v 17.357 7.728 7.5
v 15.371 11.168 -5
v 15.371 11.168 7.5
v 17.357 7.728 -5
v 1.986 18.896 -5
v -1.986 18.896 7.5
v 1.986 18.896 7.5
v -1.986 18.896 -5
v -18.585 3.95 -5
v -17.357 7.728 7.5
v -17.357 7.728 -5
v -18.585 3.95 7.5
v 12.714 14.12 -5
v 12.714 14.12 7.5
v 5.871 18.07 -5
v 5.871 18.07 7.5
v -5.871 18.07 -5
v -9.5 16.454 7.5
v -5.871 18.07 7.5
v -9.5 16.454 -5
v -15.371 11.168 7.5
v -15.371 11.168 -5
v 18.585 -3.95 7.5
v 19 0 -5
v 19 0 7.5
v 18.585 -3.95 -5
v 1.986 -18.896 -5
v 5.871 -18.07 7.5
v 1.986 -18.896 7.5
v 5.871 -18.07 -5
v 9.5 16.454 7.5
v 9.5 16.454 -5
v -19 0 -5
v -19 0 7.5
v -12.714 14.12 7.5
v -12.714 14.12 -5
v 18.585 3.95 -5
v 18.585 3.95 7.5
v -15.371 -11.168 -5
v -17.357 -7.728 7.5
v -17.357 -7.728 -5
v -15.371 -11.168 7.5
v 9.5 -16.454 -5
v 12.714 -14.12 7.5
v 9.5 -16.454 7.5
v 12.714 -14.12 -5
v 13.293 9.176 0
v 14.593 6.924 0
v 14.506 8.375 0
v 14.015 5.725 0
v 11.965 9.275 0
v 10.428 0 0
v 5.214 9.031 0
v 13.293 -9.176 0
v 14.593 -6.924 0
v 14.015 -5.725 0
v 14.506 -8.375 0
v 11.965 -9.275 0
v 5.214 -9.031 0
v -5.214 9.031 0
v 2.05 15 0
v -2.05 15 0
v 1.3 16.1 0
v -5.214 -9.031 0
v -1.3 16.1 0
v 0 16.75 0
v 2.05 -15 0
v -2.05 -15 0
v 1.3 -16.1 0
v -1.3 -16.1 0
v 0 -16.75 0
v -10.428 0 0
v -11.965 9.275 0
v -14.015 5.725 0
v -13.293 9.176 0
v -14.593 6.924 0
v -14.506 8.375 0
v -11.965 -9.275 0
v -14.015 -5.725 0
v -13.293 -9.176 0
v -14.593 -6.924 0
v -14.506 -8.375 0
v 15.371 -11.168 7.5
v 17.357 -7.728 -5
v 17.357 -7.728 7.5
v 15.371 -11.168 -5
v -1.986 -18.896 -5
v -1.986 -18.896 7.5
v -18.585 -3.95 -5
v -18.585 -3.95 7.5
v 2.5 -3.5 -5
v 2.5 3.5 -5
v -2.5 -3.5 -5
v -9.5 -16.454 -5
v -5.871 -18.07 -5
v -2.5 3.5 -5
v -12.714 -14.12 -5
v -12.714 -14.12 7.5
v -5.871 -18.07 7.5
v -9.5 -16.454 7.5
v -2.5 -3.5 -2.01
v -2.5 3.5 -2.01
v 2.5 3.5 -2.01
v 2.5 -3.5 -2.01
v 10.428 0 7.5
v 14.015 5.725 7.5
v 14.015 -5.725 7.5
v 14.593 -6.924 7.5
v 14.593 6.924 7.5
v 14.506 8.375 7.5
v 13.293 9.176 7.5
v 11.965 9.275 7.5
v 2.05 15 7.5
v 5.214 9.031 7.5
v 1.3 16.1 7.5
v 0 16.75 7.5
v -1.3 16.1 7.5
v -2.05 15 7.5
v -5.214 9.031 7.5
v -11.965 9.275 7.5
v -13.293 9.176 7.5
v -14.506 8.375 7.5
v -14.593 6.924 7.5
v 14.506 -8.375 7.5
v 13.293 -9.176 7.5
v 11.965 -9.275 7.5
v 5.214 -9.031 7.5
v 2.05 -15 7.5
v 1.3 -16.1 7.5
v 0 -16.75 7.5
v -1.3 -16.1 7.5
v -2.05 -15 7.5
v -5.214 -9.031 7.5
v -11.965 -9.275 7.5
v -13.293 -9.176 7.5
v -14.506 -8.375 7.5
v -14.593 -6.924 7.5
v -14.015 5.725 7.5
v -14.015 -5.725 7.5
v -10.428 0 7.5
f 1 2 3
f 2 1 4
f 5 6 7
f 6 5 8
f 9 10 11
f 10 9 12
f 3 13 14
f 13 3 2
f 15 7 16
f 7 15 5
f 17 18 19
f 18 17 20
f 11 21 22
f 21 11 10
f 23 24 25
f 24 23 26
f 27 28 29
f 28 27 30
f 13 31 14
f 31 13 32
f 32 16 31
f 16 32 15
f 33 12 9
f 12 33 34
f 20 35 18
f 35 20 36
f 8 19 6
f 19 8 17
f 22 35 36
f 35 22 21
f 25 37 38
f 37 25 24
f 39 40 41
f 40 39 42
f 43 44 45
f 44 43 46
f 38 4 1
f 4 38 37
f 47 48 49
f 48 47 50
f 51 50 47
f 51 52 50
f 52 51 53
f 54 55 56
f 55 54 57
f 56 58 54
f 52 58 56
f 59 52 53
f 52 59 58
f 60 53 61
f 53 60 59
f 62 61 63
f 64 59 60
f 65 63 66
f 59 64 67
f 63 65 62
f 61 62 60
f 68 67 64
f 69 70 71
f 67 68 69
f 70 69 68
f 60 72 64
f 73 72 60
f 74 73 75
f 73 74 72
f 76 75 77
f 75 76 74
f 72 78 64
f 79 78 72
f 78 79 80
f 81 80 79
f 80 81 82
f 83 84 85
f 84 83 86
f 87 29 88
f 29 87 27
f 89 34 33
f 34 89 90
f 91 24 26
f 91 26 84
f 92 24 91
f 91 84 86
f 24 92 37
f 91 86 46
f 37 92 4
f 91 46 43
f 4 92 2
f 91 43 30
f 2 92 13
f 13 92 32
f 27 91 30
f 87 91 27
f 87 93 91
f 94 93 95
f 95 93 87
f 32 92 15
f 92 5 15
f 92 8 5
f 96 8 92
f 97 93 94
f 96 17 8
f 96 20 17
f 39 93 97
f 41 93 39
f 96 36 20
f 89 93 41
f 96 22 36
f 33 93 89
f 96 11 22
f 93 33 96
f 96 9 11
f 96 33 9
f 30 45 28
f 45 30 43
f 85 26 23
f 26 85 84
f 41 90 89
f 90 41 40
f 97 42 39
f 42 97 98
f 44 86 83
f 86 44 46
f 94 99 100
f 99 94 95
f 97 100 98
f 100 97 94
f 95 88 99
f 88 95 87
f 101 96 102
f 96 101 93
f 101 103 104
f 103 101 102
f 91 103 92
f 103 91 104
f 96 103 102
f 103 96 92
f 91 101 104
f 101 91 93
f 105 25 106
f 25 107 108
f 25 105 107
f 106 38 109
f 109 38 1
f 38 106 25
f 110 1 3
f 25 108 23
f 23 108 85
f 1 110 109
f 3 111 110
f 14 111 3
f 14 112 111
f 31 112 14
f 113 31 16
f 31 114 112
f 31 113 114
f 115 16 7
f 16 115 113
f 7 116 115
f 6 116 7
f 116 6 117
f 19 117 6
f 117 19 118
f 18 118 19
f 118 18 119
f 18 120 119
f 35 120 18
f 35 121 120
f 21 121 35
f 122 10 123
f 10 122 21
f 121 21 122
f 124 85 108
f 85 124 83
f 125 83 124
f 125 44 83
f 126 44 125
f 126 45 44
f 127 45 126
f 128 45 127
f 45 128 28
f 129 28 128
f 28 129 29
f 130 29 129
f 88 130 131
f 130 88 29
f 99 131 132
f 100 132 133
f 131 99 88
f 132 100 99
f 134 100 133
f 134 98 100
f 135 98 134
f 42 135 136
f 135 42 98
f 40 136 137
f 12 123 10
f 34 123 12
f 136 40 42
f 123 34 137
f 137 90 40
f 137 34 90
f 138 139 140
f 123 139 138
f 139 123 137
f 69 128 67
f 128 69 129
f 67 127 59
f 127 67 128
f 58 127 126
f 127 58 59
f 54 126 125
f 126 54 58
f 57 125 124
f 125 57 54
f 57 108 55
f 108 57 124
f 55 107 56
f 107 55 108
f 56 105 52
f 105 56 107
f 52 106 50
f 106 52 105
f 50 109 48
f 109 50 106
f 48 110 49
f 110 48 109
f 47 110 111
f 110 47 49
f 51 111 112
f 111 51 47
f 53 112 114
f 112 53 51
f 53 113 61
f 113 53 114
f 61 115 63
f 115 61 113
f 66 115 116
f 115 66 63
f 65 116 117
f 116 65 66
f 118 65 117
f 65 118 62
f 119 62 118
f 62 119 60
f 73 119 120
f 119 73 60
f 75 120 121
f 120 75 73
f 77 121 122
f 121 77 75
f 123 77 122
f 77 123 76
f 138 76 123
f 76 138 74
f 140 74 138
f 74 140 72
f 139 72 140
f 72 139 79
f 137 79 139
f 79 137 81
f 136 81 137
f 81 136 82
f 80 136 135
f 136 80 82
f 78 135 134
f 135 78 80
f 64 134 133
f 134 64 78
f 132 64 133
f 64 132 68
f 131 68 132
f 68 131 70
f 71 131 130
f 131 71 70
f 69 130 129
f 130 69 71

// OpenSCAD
$fn = 30;

rad=19;

module servo_horn_interface(){

difference(){
cylinder(r=rad, 7.5);

translate([0,0,-0.5])
linear_extrude(80){
for(i=[0:5])
rotate([0,0,360/6*i])
polygon([[10,0],[2.05,15],[1.3,16.1],[0,16.75],[-1.3, 16.1],[-2.05,15],[-10,0]]);
}

}

difference(){
translate([0,0,-5])
cylinder(r=rad, 5);

translate([0,0,-(3/2 + 2 + .01)])
rotate([0,0,0])
cube([5,7,3],center=true);
}
}

servo_horn_interface();
